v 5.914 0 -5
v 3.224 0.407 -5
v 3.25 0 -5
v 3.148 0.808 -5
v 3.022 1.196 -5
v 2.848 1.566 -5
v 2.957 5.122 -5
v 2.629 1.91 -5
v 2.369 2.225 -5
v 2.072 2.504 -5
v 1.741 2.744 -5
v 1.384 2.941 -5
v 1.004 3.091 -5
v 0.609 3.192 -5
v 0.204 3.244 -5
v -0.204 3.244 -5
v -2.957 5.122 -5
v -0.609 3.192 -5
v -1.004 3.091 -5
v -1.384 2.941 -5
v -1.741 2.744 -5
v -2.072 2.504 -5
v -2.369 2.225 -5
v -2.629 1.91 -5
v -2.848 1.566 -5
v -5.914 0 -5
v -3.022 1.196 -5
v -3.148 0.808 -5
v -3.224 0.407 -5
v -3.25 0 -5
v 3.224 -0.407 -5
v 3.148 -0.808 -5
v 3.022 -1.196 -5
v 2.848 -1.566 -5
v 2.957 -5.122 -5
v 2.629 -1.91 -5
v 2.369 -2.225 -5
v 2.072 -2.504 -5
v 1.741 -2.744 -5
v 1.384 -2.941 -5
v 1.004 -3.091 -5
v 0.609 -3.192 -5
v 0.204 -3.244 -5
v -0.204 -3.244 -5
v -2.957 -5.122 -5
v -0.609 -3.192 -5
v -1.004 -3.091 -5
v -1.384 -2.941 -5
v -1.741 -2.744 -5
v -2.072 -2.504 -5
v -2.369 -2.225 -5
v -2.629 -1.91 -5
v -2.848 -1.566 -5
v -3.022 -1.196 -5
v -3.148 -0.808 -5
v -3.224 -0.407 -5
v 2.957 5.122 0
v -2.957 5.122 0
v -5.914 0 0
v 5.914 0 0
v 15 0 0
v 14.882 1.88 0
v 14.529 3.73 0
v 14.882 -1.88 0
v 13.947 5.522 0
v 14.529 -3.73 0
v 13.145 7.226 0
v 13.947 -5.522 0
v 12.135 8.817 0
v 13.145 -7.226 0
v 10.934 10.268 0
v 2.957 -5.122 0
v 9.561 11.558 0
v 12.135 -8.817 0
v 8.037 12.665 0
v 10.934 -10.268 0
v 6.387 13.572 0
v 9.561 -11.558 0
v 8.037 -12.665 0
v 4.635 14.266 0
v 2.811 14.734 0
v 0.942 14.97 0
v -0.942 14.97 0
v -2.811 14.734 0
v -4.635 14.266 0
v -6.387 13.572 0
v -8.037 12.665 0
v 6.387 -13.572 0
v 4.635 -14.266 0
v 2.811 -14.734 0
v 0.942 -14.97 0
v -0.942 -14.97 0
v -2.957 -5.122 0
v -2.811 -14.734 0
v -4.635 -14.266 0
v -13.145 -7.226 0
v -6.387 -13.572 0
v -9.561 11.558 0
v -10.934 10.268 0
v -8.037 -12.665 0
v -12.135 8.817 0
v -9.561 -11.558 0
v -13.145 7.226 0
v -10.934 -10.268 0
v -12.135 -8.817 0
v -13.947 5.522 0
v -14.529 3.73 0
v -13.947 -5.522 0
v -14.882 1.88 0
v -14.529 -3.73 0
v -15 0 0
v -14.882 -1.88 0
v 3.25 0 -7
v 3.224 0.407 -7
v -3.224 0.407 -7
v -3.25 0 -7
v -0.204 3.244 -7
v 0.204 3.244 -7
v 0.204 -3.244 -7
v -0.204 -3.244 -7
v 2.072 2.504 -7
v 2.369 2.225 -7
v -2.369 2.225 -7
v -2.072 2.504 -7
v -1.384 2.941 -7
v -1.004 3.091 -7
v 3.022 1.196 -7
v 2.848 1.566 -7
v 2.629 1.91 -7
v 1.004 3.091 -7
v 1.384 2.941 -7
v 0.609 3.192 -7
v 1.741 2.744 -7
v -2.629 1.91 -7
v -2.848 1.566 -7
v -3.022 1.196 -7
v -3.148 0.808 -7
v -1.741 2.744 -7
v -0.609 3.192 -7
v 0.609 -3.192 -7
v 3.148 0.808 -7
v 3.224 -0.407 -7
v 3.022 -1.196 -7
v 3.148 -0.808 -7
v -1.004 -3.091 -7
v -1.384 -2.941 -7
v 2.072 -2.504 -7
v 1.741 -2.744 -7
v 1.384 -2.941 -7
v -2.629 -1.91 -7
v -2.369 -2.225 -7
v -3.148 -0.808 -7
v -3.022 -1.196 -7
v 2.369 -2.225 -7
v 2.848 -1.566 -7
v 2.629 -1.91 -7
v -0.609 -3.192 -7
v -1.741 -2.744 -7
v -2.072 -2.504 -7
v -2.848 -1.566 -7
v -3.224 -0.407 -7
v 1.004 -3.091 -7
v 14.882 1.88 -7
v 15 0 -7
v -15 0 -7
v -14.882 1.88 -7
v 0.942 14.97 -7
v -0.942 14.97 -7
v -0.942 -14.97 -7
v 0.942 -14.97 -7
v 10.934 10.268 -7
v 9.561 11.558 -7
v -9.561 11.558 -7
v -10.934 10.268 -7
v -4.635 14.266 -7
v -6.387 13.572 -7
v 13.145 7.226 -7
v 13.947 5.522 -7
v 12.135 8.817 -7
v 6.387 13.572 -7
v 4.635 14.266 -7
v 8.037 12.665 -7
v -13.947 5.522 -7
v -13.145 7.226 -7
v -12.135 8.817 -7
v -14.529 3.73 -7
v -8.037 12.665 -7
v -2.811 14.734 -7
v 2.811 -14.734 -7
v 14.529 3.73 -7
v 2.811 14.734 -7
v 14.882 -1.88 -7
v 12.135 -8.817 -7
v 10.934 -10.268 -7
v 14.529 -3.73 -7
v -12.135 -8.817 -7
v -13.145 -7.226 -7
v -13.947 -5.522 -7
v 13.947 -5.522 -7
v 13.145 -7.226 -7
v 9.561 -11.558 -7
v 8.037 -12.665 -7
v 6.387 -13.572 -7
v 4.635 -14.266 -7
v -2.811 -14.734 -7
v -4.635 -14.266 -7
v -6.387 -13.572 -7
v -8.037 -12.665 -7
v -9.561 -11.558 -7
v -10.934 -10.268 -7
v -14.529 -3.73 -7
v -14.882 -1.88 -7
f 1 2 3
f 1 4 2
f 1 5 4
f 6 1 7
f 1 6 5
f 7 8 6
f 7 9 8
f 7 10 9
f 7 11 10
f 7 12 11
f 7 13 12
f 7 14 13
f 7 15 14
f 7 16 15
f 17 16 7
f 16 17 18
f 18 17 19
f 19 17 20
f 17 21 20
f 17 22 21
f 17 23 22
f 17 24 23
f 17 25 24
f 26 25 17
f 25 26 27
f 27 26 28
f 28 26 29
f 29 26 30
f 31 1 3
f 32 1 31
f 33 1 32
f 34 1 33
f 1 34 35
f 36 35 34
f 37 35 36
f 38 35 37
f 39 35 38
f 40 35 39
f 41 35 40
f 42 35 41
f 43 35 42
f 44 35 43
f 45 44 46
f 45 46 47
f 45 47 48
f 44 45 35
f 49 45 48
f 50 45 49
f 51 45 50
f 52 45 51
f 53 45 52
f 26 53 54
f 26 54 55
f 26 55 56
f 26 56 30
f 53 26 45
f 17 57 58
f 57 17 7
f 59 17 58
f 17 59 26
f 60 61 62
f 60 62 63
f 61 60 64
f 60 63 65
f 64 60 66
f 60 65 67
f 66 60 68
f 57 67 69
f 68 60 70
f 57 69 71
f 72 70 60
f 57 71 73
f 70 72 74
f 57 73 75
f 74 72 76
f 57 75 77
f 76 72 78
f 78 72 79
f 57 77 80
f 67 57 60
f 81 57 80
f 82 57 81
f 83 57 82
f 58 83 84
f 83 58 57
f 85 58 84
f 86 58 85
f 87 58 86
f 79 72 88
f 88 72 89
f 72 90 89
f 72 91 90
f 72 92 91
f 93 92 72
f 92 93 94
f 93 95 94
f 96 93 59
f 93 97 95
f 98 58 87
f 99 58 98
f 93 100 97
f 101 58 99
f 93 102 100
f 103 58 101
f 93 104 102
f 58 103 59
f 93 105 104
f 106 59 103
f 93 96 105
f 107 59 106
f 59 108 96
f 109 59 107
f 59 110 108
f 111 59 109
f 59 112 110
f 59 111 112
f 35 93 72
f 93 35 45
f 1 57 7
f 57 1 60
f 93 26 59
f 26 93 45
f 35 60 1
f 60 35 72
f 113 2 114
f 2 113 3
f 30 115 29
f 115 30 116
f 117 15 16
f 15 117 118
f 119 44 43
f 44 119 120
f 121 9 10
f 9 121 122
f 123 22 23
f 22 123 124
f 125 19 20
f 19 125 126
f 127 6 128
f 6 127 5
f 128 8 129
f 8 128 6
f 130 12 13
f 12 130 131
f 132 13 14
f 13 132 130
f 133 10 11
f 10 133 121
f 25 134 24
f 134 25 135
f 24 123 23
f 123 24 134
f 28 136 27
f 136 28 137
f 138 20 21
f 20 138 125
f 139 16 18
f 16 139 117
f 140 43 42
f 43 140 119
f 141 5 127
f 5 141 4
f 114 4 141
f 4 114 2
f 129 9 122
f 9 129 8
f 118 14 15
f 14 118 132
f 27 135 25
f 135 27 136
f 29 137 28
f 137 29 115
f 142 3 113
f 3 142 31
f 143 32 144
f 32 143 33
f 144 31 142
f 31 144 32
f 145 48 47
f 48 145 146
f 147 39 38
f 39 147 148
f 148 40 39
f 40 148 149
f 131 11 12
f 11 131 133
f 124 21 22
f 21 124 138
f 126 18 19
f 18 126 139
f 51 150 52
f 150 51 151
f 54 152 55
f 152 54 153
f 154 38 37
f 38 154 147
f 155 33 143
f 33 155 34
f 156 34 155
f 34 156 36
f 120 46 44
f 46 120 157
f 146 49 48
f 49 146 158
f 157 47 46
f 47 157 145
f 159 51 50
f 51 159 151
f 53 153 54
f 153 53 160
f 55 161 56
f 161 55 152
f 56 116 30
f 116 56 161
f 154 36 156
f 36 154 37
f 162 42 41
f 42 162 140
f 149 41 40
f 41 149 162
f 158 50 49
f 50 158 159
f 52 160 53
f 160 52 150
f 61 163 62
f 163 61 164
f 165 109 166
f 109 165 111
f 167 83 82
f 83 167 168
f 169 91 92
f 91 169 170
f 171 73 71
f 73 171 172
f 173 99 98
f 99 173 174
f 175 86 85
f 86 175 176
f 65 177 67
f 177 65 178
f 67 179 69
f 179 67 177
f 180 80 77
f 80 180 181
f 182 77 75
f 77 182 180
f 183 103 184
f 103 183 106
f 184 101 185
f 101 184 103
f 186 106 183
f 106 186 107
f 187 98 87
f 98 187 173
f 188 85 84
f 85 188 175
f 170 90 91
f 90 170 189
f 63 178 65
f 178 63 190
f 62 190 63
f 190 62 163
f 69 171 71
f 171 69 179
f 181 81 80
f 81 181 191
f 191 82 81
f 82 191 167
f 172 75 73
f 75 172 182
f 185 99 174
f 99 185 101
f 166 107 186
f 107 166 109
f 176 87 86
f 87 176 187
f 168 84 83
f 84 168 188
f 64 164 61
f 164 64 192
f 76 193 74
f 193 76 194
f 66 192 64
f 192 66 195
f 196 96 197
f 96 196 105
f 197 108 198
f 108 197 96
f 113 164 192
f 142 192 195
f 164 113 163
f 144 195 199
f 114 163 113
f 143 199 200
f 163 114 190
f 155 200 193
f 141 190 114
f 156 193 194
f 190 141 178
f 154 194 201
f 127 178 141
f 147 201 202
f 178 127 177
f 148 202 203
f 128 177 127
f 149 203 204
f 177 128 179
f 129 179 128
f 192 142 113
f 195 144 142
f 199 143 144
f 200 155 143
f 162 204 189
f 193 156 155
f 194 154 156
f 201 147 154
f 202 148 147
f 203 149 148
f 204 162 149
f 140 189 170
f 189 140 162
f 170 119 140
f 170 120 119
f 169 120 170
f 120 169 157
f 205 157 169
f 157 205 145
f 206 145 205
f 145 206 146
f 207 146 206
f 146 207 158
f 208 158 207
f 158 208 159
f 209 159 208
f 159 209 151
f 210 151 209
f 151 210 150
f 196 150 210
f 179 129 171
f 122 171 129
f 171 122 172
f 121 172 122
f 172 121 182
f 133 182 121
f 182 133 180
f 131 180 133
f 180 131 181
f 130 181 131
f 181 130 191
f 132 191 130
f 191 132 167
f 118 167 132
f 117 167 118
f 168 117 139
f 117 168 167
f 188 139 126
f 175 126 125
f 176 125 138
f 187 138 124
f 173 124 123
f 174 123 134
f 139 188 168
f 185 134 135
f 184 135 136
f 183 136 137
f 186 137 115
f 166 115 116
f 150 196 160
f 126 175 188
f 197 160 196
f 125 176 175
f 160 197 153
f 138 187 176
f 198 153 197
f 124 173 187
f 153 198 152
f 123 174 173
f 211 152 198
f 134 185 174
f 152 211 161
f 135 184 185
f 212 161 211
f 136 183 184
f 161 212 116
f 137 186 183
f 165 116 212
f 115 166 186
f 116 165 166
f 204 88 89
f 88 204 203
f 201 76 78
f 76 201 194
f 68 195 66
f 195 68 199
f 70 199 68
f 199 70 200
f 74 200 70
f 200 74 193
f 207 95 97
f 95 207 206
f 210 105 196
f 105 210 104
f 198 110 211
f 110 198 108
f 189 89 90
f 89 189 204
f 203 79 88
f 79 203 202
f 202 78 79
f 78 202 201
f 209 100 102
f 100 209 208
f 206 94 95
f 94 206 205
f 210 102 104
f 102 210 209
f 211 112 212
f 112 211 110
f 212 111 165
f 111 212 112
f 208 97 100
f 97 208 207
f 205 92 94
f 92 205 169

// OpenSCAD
$fn = 50;


difference() {
	union() {
		translate(v = [0, 0, -7.0000000000]) {
			cylinder(h = 7.0000000000, r = 15.0000000000);
		}
	}
	union() {
		translate(v = [0, 0, 0]) {
			rotate(a = [0, 0, 0]) {
				difference() {
					union() {
						translate(v = [0, 0, -5]) {
							#linear_extrude(height = 5) {
								polygon(points = [[5.9142500000, 0.0000000000], [2.9571250000, 5.1218907443], [-2.9571250000, 5.1218907443], [-5.9142500000, 0.0000000000], [-2.9571250000, -5.1218907443], [2.9571250000, -5.1218907443]]);
							}
						}
					}
					union();
				}
			}
		}
		#translate(v = [0, 0, -100.0000000000]) {
			cylinder(h = 200, r = 3.2500000000);
		}
	}
}
